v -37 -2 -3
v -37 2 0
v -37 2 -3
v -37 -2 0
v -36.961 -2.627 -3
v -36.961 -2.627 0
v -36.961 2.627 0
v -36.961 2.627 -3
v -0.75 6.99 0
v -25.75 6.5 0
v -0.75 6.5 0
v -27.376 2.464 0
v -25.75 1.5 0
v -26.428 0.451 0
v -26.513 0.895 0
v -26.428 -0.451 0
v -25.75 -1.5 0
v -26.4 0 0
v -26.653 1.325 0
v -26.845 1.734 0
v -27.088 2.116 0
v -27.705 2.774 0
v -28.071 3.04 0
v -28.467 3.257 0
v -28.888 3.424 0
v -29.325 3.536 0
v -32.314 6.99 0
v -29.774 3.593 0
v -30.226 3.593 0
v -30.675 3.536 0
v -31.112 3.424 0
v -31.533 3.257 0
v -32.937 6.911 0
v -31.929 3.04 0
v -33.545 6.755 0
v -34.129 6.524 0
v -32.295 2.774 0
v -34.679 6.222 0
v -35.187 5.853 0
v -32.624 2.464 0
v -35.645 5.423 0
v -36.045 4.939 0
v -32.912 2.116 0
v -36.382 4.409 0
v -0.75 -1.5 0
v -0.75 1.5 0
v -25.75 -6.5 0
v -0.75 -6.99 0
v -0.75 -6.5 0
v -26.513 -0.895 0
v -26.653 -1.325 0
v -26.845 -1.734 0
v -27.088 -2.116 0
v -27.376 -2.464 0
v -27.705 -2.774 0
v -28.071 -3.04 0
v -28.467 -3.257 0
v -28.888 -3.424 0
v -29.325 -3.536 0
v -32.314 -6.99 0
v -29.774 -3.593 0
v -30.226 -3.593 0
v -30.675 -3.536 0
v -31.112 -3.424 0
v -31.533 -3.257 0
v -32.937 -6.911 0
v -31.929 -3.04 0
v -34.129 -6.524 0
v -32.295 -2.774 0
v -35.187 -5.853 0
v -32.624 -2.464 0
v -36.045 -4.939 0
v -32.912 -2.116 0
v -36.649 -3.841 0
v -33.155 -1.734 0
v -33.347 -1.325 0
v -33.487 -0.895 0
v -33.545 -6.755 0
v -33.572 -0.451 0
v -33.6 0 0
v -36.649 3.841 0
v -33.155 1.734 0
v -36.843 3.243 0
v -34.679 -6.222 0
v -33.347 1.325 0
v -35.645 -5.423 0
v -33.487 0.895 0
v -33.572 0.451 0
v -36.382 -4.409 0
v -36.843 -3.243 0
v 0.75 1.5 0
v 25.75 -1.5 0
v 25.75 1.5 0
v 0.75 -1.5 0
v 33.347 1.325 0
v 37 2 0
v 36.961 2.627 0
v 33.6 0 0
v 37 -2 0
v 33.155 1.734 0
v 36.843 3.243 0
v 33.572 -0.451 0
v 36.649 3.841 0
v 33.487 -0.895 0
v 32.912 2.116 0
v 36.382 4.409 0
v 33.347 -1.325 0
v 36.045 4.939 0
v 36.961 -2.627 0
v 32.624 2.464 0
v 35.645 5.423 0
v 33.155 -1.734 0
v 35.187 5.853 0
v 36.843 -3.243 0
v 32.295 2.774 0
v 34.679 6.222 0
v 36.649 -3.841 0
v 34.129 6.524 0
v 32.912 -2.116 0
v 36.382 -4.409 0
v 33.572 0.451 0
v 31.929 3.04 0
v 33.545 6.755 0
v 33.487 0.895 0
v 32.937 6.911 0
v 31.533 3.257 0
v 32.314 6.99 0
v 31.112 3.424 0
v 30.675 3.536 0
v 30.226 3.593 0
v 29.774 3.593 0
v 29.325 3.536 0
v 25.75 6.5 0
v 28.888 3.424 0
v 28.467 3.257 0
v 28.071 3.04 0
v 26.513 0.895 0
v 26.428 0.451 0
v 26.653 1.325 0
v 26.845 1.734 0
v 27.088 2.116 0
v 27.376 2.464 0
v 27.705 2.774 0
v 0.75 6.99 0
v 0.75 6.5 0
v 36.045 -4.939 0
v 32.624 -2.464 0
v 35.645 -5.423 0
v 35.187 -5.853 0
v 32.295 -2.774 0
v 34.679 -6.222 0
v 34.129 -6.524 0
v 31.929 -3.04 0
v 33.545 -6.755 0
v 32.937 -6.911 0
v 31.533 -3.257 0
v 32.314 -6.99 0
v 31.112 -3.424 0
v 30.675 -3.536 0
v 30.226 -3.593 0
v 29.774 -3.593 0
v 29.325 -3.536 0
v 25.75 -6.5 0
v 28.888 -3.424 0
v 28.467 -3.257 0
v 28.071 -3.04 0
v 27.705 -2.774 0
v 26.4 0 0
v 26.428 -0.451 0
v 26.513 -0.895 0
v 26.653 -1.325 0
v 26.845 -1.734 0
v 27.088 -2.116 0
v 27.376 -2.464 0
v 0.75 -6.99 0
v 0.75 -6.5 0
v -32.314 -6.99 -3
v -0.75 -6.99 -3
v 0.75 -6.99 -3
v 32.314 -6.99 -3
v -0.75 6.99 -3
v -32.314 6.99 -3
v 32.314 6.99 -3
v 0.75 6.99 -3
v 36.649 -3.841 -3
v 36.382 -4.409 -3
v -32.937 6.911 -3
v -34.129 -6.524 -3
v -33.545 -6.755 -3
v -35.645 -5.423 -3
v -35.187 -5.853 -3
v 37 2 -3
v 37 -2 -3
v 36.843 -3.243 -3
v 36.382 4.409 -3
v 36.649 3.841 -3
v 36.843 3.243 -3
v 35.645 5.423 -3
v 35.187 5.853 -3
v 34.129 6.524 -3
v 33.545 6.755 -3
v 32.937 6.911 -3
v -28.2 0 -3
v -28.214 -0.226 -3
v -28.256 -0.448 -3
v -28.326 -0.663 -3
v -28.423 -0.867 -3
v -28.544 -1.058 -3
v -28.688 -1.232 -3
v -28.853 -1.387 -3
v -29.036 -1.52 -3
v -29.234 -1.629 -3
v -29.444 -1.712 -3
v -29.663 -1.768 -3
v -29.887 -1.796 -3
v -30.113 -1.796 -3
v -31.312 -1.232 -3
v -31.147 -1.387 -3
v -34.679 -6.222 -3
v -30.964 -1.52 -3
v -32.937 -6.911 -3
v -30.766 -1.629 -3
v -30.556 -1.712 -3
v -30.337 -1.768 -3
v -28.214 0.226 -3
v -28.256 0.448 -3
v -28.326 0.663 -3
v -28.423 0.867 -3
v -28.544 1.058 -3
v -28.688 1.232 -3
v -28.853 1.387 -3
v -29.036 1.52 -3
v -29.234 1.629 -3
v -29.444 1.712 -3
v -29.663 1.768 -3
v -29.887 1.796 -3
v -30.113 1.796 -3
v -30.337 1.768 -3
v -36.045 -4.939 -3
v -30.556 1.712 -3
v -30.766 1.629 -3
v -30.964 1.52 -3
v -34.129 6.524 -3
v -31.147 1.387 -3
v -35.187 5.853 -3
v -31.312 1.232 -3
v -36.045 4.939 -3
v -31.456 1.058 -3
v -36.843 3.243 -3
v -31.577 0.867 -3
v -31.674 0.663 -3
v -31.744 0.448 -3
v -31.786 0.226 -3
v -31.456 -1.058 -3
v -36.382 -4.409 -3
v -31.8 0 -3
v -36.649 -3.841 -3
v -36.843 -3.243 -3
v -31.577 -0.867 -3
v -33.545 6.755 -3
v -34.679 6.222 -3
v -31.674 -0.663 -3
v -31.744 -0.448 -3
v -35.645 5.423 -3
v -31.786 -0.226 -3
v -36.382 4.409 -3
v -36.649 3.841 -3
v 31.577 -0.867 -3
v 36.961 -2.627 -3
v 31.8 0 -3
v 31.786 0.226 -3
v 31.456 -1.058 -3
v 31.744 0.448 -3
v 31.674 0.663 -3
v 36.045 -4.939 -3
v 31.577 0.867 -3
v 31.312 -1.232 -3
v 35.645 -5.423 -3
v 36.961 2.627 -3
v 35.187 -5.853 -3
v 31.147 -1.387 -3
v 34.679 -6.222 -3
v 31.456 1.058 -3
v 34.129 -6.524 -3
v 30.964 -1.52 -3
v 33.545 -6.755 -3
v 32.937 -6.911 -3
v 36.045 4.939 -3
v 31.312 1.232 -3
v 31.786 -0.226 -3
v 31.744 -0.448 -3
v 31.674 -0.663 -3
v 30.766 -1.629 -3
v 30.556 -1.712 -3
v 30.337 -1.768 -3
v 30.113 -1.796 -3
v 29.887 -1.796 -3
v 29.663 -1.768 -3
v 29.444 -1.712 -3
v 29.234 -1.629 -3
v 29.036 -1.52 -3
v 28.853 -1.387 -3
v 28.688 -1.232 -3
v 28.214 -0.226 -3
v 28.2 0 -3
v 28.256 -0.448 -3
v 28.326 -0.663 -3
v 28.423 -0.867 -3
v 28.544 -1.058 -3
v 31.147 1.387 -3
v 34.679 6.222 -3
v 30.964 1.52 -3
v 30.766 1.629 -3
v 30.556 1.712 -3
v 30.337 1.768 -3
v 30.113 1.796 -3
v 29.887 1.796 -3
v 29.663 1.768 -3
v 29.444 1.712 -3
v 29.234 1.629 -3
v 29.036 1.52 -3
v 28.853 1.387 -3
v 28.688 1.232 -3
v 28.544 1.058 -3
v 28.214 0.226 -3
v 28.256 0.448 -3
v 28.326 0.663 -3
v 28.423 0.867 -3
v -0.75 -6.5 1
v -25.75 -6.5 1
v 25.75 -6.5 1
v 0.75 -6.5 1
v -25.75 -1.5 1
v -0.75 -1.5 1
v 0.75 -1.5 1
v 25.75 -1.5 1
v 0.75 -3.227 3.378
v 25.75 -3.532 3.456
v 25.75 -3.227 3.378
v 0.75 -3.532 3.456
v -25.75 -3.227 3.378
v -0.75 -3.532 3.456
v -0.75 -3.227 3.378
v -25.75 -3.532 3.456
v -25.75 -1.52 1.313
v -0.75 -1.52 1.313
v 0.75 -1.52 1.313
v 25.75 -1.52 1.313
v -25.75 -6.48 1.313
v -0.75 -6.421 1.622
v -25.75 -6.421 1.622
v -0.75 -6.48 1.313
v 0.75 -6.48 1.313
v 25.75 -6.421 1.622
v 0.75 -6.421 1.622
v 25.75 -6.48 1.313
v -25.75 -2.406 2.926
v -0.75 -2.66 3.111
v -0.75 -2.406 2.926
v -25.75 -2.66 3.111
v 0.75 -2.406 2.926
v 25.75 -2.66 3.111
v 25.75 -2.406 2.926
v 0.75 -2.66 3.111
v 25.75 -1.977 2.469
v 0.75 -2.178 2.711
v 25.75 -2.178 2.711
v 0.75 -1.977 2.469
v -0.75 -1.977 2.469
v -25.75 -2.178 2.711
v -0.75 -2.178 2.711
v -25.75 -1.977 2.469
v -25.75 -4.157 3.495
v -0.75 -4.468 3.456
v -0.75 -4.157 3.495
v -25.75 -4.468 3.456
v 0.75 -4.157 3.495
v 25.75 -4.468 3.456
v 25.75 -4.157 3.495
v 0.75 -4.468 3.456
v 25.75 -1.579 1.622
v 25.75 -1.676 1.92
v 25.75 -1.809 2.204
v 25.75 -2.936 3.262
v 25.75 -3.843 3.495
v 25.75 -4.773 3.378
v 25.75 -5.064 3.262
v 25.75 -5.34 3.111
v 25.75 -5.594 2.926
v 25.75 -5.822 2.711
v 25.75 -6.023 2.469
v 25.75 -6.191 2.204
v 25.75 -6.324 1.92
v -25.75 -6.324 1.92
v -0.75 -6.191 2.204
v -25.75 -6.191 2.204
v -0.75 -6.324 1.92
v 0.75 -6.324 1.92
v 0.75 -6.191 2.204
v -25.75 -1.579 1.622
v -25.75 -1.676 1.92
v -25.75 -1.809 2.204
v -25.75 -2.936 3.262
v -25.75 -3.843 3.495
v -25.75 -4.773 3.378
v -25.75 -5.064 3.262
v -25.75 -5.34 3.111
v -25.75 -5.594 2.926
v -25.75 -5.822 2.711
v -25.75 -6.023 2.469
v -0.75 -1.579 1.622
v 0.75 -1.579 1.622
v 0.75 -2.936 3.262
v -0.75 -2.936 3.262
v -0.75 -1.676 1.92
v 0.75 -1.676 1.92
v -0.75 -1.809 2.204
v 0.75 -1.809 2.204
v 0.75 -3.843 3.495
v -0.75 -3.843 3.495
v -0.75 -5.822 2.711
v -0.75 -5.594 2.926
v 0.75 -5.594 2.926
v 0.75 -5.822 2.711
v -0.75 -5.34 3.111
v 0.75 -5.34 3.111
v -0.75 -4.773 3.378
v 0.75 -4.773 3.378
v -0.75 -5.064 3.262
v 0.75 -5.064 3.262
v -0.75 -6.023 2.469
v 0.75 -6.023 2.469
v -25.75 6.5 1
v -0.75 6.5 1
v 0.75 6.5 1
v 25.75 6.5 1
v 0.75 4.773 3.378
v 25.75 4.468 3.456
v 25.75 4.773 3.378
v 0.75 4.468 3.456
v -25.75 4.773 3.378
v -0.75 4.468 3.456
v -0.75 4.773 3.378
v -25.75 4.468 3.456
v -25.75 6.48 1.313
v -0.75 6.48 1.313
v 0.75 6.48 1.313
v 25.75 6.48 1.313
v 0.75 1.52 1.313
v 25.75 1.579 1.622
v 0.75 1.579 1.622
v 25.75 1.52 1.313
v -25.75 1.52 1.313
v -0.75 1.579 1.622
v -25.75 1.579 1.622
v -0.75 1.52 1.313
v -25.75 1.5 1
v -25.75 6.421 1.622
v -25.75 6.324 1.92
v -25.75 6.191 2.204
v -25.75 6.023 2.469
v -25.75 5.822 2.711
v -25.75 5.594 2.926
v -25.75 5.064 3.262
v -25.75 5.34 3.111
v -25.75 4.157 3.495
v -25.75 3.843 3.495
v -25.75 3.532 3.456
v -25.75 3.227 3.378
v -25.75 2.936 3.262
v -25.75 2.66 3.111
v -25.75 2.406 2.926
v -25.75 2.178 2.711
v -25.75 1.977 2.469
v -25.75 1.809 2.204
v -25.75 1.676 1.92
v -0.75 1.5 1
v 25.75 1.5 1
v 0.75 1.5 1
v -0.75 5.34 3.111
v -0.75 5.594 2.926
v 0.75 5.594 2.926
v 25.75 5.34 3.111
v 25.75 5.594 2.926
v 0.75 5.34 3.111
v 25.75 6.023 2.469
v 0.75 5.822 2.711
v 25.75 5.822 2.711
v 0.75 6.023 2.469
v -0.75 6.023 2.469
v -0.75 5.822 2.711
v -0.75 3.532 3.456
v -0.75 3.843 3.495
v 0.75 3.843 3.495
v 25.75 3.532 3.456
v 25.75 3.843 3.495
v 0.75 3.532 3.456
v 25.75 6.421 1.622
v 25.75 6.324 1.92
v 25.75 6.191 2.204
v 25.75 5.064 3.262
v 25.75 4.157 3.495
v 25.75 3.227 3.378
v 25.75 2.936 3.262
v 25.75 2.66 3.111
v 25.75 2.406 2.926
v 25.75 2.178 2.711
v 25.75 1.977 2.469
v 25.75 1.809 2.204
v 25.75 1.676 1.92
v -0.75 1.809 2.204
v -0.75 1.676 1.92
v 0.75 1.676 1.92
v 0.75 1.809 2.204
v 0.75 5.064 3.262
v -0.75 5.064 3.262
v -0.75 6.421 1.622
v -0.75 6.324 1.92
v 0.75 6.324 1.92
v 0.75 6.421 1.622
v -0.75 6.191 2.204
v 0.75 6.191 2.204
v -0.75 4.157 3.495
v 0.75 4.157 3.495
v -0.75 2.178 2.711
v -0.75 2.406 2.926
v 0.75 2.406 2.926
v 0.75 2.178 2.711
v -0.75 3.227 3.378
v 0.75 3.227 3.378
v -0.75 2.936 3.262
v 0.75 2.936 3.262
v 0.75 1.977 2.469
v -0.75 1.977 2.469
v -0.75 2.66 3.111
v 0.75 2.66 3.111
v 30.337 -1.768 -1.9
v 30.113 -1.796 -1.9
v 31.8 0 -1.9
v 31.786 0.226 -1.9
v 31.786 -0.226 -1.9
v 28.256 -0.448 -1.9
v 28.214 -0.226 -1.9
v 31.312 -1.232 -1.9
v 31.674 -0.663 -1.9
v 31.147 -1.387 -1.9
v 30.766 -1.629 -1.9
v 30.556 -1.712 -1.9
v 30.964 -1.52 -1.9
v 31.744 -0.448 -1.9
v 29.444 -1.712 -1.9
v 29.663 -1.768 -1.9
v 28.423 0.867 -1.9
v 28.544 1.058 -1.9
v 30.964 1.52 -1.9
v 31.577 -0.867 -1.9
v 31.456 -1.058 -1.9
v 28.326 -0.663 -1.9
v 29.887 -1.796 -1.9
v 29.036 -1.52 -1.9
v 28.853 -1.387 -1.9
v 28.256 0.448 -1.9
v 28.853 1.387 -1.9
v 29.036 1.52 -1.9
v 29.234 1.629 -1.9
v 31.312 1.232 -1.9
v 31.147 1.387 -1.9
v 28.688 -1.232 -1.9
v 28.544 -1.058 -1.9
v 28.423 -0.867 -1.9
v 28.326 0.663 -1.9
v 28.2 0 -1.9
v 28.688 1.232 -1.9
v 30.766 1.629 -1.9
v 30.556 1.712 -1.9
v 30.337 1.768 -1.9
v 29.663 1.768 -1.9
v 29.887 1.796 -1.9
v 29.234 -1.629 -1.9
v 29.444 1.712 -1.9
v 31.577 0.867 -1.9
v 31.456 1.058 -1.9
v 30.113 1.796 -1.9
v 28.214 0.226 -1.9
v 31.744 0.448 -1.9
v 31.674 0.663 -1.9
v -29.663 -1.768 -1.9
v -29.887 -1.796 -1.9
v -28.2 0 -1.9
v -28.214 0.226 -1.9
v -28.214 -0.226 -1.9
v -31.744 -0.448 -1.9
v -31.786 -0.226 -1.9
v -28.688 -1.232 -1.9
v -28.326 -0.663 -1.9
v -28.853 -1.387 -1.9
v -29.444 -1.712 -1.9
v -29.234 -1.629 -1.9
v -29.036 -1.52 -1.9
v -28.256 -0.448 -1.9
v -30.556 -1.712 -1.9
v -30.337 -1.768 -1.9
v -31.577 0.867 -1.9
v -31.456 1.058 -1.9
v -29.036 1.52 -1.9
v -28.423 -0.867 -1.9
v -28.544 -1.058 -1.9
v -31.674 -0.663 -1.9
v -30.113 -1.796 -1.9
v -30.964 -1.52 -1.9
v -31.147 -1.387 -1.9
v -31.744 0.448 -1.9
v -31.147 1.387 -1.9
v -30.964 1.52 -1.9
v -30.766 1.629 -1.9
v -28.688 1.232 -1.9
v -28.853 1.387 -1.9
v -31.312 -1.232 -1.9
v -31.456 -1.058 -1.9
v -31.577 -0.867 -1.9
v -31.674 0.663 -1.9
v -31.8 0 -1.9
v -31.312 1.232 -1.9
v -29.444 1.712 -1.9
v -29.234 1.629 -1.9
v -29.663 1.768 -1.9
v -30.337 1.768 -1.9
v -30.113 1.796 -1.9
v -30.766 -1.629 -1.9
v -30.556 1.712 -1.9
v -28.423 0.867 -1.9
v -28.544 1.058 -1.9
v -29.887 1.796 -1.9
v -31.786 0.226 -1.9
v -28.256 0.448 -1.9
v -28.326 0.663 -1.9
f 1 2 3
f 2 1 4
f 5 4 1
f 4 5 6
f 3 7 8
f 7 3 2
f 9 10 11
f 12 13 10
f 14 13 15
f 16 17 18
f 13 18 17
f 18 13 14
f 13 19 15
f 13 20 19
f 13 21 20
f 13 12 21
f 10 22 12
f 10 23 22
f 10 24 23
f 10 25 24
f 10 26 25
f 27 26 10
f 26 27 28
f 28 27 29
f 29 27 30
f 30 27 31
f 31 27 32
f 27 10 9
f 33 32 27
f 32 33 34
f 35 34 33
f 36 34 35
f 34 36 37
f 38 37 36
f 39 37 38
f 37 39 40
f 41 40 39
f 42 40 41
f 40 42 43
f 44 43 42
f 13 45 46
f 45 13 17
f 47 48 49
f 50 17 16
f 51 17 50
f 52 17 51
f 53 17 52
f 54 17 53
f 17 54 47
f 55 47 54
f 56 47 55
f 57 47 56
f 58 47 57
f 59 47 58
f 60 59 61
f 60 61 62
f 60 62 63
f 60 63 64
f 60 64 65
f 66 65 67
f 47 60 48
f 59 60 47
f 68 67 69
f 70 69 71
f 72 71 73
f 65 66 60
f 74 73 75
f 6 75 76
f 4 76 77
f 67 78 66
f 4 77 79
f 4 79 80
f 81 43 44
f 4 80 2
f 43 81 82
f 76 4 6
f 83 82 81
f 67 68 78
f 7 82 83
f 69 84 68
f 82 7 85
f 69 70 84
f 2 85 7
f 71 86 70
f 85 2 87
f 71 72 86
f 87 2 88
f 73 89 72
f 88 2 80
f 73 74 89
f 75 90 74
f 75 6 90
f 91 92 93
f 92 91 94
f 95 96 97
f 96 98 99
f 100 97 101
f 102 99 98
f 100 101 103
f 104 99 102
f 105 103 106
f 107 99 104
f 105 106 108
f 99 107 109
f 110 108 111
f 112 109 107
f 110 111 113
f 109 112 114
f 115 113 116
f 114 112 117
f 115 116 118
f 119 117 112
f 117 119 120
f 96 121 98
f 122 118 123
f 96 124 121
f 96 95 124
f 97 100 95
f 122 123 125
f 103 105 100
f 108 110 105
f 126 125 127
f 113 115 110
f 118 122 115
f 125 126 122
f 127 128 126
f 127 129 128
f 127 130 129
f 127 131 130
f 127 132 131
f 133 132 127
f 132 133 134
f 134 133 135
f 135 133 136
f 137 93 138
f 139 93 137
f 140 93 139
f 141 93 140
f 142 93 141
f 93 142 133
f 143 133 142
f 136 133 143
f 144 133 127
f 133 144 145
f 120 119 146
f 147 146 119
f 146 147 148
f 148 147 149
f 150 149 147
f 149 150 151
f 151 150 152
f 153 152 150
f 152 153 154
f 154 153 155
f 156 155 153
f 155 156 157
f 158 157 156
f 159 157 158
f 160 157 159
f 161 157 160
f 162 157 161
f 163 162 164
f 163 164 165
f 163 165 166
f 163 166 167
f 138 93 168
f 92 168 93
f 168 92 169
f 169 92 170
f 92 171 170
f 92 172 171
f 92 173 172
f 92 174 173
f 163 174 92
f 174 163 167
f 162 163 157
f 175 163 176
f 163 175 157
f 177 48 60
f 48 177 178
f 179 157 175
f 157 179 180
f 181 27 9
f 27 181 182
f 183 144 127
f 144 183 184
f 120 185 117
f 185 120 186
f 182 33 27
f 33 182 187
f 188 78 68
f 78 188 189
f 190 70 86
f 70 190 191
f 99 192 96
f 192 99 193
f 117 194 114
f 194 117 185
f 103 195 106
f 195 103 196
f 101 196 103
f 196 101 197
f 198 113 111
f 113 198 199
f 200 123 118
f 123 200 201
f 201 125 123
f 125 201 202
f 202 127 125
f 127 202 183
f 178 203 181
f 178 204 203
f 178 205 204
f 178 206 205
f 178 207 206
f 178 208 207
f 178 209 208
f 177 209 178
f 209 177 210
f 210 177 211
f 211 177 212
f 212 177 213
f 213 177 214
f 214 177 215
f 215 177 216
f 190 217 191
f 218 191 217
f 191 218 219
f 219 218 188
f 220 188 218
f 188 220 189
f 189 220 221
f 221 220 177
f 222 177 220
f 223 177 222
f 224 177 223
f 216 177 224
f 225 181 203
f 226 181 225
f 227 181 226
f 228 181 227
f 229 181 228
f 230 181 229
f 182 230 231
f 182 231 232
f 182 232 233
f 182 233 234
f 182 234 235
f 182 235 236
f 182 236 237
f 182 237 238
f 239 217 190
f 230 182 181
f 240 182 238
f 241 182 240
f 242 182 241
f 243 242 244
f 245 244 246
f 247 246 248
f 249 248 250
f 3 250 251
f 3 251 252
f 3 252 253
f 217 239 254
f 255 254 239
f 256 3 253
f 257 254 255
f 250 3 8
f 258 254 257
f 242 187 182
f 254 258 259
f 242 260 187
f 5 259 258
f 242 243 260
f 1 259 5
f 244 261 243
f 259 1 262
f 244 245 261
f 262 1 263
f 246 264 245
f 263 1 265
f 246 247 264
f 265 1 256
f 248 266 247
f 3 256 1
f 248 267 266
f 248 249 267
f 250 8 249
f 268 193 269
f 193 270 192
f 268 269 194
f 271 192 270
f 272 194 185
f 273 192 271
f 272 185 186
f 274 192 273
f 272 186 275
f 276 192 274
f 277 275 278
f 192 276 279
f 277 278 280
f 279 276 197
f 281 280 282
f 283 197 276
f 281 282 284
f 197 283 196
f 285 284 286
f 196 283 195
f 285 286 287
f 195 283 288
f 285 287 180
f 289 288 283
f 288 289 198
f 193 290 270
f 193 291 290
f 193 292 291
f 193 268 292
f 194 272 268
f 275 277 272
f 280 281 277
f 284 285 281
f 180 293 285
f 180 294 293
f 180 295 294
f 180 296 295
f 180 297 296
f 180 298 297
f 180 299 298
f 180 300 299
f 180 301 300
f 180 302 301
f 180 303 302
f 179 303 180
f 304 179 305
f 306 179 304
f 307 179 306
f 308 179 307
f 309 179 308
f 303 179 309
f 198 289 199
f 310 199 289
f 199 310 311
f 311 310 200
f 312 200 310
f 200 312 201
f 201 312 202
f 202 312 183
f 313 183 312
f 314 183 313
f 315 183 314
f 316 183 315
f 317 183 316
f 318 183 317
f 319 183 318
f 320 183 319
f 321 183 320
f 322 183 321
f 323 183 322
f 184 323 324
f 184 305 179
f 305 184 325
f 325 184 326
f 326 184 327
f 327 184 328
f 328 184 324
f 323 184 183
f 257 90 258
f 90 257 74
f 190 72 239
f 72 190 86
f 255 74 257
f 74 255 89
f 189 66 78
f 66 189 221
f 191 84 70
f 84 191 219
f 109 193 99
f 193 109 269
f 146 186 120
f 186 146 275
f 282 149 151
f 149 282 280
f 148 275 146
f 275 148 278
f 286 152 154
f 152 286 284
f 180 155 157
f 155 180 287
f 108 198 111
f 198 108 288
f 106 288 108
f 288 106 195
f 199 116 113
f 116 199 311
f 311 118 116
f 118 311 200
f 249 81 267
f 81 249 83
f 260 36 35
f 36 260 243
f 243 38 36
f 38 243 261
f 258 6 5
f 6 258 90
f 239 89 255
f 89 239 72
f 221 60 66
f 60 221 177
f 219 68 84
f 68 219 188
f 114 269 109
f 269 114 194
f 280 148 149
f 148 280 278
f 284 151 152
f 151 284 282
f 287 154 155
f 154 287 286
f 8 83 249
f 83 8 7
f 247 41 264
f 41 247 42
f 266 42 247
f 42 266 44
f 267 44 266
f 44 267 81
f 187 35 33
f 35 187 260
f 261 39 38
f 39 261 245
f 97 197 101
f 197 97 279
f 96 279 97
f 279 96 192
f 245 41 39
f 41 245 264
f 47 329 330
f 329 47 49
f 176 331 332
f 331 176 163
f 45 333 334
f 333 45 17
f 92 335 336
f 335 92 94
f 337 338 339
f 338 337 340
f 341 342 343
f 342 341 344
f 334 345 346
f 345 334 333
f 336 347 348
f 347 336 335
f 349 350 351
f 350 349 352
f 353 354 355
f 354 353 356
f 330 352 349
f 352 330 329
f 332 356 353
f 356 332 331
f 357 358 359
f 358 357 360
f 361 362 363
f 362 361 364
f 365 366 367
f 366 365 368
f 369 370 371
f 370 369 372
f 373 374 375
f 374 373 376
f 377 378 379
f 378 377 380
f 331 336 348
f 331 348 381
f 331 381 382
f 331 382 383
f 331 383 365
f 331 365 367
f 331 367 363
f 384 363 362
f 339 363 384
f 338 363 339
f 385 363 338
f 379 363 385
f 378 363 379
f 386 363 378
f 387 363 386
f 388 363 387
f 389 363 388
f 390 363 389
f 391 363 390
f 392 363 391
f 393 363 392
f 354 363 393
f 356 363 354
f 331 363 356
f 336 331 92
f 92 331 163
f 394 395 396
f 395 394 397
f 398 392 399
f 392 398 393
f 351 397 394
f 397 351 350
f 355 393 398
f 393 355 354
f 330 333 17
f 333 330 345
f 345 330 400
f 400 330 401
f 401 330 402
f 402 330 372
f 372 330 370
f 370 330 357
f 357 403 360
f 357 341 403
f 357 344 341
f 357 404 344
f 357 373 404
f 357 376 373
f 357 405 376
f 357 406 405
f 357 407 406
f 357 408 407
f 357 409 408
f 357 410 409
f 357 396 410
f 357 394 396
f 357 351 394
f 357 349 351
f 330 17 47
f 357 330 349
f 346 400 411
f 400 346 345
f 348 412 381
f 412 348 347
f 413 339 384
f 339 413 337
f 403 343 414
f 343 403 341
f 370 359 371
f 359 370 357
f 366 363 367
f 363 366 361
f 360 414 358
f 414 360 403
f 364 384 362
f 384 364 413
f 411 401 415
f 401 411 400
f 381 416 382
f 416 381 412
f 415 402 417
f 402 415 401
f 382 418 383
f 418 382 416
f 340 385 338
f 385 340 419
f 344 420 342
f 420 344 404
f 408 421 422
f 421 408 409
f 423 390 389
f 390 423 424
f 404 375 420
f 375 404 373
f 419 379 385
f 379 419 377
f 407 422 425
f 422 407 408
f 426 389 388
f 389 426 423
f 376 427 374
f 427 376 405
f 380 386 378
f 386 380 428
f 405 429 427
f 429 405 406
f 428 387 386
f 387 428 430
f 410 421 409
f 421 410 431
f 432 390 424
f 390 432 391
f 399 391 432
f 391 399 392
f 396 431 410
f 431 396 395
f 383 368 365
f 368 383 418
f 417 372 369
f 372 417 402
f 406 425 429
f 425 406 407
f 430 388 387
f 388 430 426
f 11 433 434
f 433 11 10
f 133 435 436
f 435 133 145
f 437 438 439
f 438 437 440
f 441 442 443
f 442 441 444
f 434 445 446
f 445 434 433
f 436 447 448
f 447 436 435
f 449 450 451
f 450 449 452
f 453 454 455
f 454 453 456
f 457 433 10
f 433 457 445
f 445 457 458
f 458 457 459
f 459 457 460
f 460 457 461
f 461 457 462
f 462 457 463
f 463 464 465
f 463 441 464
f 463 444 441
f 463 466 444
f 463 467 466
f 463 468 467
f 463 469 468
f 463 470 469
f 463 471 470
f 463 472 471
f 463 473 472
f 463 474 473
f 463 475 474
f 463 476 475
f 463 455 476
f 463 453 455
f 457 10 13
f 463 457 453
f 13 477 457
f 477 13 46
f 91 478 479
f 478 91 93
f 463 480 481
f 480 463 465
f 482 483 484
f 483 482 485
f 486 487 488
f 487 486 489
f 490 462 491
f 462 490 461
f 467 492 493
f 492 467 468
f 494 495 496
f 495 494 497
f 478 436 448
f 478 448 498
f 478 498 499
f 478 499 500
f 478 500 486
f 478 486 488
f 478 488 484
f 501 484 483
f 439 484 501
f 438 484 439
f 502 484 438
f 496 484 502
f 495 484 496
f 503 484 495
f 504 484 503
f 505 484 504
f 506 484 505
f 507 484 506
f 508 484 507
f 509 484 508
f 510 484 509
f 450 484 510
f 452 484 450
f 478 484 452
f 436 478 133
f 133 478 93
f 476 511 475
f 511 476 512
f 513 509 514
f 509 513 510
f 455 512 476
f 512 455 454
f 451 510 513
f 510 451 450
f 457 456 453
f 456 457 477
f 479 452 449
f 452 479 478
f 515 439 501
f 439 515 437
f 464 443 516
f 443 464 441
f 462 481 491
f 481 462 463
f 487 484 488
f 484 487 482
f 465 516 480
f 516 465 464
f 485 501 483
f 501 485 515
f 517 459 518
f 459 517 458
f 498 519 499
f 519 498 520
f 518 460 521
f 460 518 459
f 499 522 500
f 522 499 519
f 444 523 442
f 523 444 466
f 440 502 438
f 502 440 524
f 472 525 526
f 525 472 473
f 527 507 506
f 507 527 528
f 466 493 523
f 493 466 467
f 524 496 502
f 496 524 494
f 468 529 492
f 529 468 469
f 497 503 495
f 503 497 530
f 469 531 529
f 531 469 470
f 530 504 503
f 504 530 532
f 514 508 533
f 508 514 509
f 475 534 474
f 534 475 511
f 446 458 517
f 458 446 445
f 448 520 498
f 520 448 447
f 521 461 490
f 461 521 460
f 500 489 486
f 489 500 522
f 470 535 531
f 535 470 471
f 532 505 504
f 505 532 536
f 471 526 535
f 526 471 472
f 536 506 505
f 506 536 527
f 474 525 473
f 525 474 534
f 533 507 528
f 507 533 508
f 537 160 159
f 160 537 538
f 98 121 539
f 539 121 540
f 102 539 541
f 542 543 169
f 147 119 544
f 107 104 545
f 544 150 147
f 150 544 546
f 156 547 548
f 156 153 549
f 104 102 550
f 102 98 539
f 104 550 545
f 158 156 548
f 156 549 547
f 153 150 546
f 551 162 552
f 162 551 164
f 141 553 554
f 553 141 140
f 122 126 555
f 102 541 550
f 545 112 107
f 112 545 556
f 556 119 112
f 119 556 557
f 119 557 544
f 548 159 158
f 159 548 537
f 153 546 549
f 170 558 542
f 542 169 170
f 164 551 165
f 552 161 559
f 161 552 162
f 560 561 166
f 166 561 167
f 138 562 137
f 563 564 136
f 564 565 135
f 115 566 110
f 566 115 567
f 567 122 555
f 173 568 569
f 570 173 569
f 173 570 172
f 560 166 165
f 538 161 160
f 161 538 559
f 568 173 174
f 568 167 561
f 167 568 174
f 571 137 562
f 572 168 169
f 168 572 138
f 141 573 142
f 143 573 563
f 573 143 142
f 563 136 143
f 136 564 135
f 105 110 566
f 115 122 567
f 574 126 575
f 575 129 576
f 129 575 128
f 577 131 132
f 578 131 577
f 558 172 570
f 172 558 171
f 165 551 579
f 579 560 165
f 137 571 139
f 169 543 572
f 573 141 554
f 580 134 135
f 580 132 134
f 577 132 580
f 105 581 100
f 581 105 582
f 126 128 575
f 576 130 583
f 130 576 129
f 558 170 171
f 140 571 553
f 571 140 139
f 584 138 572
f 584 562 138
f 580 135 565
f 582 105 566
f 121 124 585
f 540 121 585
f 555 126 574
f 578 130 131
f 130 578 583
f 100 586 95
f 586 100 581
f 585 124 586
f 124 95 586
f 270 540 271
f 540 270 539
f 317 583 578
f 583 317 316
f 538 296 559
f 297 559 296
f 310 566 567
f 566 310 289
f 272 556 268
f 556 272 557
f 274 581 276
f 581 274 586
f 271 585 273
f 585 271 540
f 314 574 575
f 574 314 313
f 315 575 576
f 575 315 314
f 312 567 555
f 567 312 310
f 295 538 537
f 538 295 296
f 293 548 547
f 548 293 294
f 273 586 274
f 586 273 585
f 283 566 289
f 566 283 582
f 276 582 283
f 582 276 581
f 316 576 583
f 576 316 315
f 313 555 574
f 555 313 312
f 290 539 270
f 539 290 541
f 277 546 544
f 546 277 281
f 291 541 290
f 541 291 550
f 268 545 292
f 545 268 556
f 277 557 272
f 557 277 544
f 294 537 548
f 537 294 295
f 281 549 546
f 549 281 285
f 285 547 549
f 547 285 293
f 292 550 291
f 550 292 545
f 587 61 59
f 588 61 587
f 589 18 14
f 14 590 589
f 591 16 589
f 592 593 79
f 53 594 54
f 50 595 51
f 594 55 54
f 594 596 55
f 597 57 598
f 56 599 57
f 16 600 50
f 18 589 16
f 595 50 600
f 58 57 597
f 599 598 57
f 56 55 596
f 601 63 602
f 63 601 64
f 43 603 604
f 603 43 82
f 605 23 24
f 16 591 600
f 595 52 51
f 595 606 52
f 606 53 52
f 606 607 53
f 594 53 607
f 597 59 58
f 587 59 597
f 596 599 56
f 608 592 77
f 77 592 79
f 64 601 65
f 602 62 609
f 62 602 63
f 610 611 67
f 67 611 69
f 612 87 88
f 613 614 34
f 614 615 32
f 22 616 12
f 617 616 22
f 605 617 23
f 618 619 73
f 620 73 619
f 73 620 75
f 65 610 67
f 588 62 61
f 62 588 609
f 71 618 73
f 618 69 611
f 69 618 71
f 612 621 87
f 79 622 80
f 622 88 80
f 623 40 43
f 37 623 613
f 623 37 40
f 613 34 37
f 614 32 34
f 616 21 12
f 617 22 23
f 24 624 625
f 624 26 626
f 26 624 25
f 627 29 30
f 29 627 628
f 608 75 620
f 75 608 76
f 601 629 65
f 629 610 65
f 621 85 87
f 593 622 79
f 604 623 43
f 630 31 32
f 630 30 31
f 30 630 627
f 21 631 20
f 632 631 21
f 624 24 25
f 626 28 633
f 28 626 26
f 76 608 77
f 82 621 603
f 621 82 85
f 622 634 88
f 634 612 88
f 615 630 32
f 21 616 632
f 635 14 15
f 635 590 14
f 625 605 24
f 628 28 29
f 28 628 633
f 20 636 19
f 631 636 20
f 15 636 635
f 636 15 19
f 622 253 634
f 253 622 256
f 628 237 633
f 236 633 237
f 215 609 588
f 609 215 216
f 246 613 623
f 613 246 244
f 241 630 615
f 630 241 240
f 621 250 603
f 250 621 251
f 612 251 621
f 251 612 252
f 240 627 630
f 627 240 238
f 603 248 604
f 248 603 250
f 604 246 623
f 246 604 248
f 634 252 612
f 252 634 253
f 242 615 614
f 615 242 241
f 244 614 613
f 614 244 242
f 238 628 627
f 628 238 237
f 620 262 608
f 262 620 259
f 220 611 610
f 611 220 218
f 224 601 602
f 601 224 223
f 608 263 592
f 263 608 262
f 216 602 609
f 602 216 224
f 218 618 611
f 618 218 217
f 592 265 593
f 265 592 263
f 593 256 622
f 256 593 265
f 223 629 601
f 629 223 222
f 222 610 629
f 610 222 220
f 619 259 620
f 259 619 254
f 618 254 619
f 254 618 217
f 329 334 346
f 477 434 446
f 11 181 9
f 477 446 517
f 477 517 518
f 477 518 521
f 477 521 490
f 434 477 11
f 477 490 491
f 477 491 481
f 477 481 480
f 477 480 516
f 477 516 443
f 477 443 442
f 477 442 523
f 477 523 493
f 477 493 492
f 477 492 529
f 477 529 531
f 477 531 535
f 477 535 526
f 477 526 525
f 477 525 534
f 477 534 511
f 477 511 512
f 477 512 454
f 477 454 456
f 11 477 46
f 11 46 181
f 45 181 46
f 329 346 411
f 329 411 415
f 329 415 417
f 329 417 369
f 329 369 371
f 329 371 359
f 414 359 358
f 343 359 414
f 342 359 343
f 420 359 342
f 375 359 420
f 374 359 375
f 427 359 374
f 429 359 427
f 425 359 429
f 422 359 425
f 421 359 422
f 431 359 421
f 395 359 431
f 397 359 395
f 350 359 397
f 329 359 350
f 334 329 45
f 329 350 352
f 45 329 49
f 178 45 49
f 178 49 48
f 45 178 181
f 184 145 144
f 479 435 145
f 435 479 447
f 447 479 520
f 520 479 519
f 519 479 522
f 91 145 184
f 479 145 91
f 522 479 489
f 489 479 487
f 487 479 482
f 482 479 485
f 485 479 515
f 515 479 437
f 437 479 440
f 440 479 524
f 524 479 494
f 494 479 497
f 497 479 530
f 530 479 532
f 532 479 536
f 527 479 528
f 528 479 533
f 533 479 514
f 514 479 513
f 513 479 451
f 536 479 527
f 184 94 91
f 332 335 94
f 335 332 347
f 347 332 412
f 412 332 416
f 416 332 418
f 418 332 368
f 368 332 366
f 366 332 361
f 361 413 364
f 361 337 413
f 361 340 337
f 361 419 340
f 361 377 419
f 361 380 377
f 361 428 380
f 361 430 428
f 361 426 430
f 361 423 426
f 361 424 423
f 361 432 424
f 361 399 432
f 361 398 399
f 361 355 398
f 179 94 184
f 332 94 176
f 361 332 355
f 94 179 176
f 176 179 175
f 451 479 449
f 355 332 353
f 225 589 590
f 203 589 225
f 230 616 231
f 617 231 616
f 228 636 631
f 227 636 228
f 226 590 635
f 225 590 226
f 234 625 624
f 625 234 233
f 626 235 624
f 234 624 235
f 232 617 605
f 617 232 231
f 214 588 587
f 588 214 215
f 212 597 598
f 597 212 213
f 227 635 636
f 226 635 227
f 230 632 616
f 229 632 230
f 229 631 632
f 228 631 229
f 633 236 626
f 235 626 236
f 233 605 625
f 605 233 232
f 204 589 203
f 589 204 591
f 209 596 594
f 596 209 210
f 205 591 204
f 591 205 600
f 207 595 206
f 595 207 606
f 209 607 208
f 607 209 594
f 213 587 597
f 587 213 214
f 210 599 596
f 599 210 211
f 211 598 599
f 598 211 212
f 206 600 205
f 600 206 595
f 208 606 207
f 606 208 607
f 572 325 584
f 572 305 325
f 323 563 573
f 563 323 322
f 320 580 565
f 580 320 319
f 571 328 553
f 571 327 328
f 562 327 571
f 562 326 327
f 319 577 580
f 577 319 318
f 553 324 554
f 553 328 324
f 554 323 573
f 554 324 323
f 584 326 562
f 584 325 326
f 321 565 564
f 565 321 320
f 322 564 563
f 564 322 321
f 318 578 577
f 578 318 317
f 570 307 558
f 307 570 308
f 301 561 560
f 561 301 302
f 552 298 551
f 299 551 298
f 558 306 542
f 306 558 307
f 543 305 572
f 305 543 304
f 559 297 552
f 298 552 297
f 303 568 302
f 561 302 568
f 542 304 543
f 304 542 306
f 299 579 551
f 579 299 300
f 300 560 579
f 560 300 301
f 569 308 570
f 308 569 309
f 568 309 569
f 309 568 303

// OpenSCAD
$fn = 50;


difference() {
	union() {
		translate(v = [0, 0, -3]) {
			hull() {
				translate(v = [-32.0000000000, 2.0000000000, 0]) {
					cylinder(h = 3, r = 5);
				}
				translate(v = [32.0000000000, 2.0000000000, 0]) {
					cylinder(h = 3, r = 5);
				}
				translate(v = [-32.0000000000, -2.0000000000, 0]) {
					cylinder(h = 3, r = 5);
				}
				translate(v = [32.0000000000, -2.0000000000, 0]) {
					cylinder(h = 3, r = 5);
				}
			}
		}
		translate(v = [-25.7500000000, -4.0000000000, -1.5000000000]) {
			rotate(a = [90, 0, 90]) {
				hull() {
					translate(v = [-0.0000000000, 2.5000000000, 0]) {
						cylinder(h = 51.5000000000, r = 2.5000000000);
					}
					translate(v = [0.0000000000, 2.5000000000, 0]) {
						cylinder(h = 51.5000000000, r = 2.5000000000);
					}
					translate(v = [-0.0000000000, -2.5000000000, 0]) {
						cylinder(h = 51.5000000000, r = 2.5000000000);
					}
					translate(v = [0.0000000000, -2.5000000000, 0]) {
						cylinder(h = 51.5000000000, r = 2.5000000000);
					}
				}
			}
		}
		translate(v = [-25.7500000000, 4.0000000000, -1.5000000000]) {
			rotate(a = [90, 0, 90]) {
				hull() {
					translate(v = [-0.0000000000, 2.5000000000, 0]) {
						cylinder(h = 51.5000000000, r = 2.5000000000);
					}
					translate(v = [0.0000000000, 2.5000000000, 0]) {
						cylinder(h = 51.5000000000, r = 2.5000000000);
					}
					translate(v = [-0.0000000000, -2.5000000000, 0]) {
						cylinder(h = 51.5000000000, r = 2.5000000000);
					}
					translate(v = [0.0000000000, -2.5000000000, 0]) {
						cylinder(h = 51.5000000000, r = 2.5000000000);
					}
				}
			}
		}
	}
	union() {
		translate(v = [30.0000000000, 0.0000000000, 0]) {
			rotate(a = [0, 0, 0]) {
				difference() {
					union() {
						translate(v = [0, 0, -3.0000000000]) {
							cylinder(h = 3, r = 1.5000000000);
						}
						translate(v = [0, 0, -1.9000000000]) {
							cylinder(h = 1.9000000000, r1 = 1.8000000000, r2 = 3.6000000000);
						}
						translate(v = [0, 0, -3.0000000000]) {
							cylinder(h = 3, r = 1.8000000000);
						}
						translate(v = [0, 0, -3.0000000000]) {
							cylinder(h = 3, r = 1.5000000000);
						}
					}
					union();
				}
			}
		}
		translate(v = [-30.0000000000, 0.0000000000, 0]) {
			rotate(a = [0, 0, 0]) {
				difference() {
					union() {
						translate(v = [0, 0, -3.0000000000]) {
							cylinder(h = 3, r = 1.5000000000);
						}
						translate(v = [0, 0, -1.9000000000]) {
							cylinder(h = 1.9000000000, r1 = 1.8000000000, r2 = 3.6000000000);
						}
						translate(v = [0, 0, -3.0000000000]) {
							cylinder(h = 3, r = 1.8000000000);
						}
						translate(v = [0, 0, -3.0000000000]) {
							cylinder(h = 3, r = 1.5000000000);
						}
					}
					union();
				}
			}
		}
		translate(v = [-0.7500000000, -250.0000000000, -250.0000000000]) {
			cube(size = [1.5000000000, 500, 500]);
		}
		translate(v = [-250.0000000000, -250.0000000000, -503]) {
			cube(size = [500, 500, 500]);
		}
		translate(v = [-250.0000000000, -250.0000000000, -503]) {
			cube(size = [500, 500, 500]);
		}
		translate(v = [-250.0000000000, -250.0000000000, -503]) {
			cube(size = [500, 500, 500]);
		}
		translate(v = [-30.0000000000, 0.0000000000, -100.0000000000]) {
			cylinder(h = 200, r = 1.8000000000);
		}
		translate(v = [30.0000000000, 0.0000000000, -100.0000000000]) {
			cylinder(h = 200, r = 1.8000000000);
		}
		translate(v = [30.0000000000, 0.0000000000, -100.0000000000]) {
			cylinder(h = 200, r = 1.8000000000);
		}
		translate(v = [-30.0000000000, 0.0000000000, -100.0000000000]) {
			cylinder(h = 200, r = 1.8000000000);
		}
		translate(v = [30.0000000000, 0.0000000000, -100.0000000000]) {
			cylinder(h = 200, r = 1.8000000000);
		}
		translate(v = [-30.0000000000, 0.0000000000, -100.0000000000]) {
			cylinder(h = 200, r = 1.8000000000);
		}
		translate(v = [30.0000000000, 0.0000000000, -100.0000000000]) {
			cylinder(h = 200, r = 1.8000000000);
		}
		translate(v = [-30.0000000000, 0.0000000000, -100.0000000000]) {
			cylinder(h = 200, r = 1.8000000000);
		}
		translate(v = [30.0000000000, 0.0000000000, -100.0000000000]) {
			cylinder(h = 200, r = 1.8000000000);
		}
	}
}
